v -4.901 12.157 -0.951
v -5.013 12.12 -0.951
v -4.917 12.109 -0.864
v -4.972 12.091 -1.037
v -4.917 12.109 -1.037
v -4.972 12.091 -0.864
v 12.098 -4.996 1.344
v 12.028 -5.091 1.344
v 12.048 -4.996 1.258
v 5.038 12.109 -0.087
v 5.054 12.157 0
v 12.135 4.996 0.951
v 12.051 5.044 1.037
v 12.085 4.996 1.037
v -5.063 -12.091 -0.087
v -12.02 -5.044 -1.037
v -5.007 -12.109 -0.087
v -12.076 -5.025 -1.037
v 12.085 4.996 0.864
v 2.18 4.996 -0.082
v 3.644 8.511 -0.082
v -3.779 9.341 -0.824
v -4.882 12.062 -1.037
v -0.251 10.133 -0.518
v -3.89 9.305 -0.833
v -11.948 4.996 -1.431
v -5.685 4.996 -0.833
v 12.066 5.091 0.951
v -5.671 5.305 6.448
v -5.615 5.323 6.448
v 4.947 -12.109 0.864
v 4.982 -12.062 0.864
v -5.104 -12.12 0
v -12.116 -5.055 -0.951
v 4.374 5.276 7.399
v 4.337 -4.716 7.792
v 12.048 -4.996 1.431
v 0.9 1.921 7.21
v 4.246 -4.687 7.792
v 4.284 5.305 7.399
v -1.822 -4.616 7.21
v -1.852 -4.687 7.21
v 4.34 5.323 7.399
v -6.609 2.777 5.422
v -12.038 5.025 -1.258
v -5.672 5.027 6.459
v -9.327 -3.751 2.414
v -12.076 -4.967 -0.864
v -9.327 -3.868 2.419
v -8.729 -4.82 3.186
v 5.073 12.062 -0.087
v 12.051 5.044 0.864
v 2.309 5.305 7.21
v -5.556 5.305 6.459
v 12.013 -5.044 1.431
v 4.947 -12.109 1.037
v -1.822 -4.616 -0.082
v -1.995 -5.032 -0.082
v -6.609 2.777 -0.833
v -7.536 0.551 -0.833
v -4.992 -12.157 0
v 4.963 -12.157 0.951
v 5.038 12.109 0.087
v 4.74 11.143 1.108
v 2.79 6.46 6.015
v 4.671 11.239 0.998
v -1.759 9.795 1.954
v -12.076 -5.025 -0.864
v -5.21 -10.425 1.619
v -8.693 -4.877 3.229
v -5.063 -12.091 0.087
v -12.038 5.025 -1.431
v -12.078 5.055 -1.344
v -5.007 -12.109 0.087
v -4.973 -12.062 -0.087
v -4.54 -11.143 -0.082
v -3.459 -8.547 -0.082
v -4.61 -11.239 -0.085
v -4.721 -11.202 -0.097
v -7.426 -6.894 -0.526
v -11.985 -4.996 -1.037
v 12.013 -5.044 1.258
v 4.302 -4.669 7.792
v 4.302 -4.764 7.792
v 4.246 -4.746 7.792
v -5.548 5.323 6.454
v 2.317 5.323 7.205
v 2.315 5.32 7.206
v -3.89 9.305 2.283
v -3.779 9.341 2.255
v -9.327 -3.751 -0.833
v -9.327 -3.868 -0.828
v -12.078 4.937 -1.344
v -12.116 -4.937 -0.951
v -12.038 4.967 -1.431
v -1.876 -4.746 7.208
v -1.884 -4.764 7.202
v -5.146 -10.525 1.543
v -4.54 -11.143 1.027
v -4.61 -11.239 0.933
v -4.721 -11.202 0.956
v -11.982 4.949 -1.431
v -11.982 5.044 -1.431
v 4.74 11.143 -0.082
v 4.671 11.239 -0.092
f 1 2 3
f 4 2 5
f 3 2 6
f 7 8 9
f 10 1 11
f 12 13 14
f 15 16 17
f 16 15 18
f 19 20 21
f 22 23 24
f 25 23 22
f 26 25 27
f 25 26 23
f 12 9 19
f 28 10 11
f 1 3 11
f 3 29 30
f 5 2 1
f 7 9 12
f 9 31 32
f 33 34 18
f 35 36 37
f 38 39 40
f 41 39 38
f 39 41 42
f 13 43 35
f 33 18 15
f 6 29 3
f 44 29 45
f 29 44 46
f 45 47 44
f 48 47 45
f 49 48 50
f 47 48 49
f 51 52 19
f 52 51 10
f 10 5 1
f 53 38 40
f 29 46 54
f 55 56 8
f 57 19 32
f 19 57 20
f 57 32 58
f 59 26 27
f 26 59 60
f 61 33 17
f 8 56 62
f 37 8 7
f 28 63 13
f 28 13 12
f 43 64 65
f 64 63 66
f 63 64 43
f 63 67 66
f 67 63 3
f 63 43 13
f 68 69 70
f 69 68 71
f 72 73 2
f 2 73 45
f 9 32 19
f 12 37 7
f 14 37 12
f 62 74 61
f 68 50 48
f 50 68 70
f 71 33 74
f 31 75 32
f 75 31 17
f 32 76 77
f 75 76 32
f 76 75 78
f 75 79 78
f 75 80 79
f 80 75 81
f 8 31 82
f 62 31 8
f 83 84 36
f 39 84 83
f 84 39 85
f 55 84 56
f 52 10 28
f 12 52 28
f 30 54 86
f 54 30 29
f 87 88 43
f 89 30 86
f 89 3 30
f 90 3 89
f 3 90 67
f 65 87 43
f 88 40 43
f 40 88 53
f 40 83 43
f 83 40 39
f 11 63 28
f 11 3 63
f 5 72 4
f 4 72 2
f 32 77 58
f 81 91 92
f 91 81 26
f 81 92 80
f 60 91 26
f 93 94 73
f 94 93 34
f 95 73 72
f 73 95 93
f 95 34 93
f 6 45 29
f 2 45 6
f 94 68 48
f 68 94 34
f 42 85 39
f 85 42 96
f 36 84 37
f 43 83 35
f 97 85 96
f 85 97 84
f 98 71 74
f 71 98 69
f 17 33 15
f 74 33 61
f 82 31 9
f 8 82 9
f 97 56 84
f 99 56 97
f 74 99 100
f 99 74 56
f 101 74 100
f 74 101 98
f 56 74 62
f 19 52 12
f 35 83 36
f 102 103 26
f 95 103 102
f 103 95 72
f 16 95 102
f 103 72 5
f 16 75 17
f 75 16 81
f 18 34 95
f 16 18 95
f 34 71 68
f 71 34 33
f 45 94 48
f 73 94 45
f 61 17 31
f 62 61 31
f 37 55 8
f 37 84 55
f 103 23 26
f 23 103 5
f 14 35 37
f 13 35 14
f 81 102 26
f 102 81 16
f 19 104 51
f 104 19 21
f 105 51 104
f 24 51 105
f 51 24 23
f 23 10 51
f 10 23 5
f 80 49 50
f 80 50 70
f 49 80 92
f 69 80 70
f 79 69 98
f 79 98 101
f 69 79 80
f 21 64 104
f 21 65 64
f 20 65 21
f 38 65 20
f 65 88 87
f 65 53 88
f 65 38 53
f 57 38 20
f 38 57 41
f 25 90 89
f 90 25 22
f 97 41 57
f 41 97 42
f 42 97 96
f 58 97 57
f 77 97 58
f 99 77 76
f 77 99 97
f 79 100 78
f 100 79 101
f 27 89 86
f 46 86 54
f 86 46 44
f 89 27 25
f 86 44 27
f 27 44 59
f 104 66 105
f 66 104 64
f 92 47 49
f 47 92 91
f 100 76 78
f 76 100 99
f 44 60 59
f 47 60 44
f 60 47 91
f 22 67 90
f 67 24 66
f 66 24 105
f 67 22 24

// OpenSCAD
// Auto-generated OpenSCAD file

    inner_points = 10*[[0.4640413965551187, 1.1143484030902198, 0.49999999999999933], [0.19221223995568226, 0.46157822176877006, 1.2071067811865472], [-0.19221223995568226, -0.46157822176877006, -1.2071067811865472], [-0.4640413965551187, -1.1143484030902198, -0.49999999999999933], [0.4640413965551183, 1.1143484030902195, -0.5000000000000007], [-0.19221223995568118, -0.46157822176876906, 1.2071067811865477], [0.19221223995568118, 0.46157822176876906, -1.2071067811865477], [-0.4640413965551183, -1.1143484030902195, 0.5000000000000007], [-0.3809410247220134, 0.9245993379208868, -1.6653345369377348e-16], [-0.6527701813214497, 0.2718291565994371, 0.7071067811865477], [-0.6527701813214505, 0.2718291565994365, -0.7071067811865472], [-0.9245993379208868, -0.38094102472201324, 5.551115123125783e-16]];

    outer_points = 10*[[1.2035201993020799, 0.49960866706726725, 0.09506361475190225], [1.1997598001990037, -0.49960866706726725, 0.134441001202246], [-1.1997598001990037, 0.49960866706726725, -0.134441001202246], [-1.2035201993020799, -0.49960866706726725, -0.09506361475190225], [0.5022747882439678, 1.2061620199129408, -7.479318947997693e-07], [0.4931963817293862, -1.2061620199129408, 0.09506467248733161], [-0.4931963817293862, 1.2061620199129408, -0.09506467248733161], [-0.5022747882439678, -1.2061620199129408, 7.479318947997693e-07], [0.4324480499089029, 0.5275793585592033, 0.7311967618584252], [0.42868765080582694, -0.47163797557533116, 0.770574148308769], [-0.5630231200644511, 0.5275793585592033, 0.6361328373029884], [-0.566783519167527, -0.47163797557533116, 0.6755102237533323]];

    // Convex hull for inner set (I)
    module inner_hull() {
        hull() {
            for (p = inner_points) {
                translate(p) sphere(r=0.1);
            }
        }
    }

    // Convex hull for outer set (O) minus inner hull (O \ I)
    module outer_minus_inner() {
        difference() {
            hull() {
                for (p = outer_points) {
                    translate(p) sphere(r=0.1);
                }
            }
            inner_hull(); // Subtract inner hull
        }
    }

    // Convex hull for outer set (O) minus all translated inner hulls
    module outer_minus_AllTranslationInner() {
        difference() {
            hull() {
                for (p = outer_points) {
                    translate(p) sphere(r=0.1);
                }
            }
            hull() {
                translate([0,0,50]) inner_hull();
                translate([0,0,-50]) inner_hull();
            }; // Subtract translated inner hulls
        }
    }

    // Difference between outer_minus_inner and outer_minus_AllTranslationInner
    module outer_minus_inner_diff() {
        difference() {
            // Outer minus inner
            difference() {
                hull() {
                    for (p = outer_points) {
                        translate(p) sphere(r=0.1);
                    }
                }
                inner_hull();
            }

            // Subtract Outer minus AllTranslationInner
            difference() {
                hull() {
                    for (p = outer_points) {
                        translate(p) sphere(r=0.1);
                    }
                }
                hull() {
                    translate([0,0,50]) inner_hull();
                    translate([0,0,-50]) inner_hull();
                };
            }
        }
    }

    // Rendering all with colors applied
    color([0, 1, 0, 1]) outer_minus_AllTranslationInner(); // Opaque green
    
